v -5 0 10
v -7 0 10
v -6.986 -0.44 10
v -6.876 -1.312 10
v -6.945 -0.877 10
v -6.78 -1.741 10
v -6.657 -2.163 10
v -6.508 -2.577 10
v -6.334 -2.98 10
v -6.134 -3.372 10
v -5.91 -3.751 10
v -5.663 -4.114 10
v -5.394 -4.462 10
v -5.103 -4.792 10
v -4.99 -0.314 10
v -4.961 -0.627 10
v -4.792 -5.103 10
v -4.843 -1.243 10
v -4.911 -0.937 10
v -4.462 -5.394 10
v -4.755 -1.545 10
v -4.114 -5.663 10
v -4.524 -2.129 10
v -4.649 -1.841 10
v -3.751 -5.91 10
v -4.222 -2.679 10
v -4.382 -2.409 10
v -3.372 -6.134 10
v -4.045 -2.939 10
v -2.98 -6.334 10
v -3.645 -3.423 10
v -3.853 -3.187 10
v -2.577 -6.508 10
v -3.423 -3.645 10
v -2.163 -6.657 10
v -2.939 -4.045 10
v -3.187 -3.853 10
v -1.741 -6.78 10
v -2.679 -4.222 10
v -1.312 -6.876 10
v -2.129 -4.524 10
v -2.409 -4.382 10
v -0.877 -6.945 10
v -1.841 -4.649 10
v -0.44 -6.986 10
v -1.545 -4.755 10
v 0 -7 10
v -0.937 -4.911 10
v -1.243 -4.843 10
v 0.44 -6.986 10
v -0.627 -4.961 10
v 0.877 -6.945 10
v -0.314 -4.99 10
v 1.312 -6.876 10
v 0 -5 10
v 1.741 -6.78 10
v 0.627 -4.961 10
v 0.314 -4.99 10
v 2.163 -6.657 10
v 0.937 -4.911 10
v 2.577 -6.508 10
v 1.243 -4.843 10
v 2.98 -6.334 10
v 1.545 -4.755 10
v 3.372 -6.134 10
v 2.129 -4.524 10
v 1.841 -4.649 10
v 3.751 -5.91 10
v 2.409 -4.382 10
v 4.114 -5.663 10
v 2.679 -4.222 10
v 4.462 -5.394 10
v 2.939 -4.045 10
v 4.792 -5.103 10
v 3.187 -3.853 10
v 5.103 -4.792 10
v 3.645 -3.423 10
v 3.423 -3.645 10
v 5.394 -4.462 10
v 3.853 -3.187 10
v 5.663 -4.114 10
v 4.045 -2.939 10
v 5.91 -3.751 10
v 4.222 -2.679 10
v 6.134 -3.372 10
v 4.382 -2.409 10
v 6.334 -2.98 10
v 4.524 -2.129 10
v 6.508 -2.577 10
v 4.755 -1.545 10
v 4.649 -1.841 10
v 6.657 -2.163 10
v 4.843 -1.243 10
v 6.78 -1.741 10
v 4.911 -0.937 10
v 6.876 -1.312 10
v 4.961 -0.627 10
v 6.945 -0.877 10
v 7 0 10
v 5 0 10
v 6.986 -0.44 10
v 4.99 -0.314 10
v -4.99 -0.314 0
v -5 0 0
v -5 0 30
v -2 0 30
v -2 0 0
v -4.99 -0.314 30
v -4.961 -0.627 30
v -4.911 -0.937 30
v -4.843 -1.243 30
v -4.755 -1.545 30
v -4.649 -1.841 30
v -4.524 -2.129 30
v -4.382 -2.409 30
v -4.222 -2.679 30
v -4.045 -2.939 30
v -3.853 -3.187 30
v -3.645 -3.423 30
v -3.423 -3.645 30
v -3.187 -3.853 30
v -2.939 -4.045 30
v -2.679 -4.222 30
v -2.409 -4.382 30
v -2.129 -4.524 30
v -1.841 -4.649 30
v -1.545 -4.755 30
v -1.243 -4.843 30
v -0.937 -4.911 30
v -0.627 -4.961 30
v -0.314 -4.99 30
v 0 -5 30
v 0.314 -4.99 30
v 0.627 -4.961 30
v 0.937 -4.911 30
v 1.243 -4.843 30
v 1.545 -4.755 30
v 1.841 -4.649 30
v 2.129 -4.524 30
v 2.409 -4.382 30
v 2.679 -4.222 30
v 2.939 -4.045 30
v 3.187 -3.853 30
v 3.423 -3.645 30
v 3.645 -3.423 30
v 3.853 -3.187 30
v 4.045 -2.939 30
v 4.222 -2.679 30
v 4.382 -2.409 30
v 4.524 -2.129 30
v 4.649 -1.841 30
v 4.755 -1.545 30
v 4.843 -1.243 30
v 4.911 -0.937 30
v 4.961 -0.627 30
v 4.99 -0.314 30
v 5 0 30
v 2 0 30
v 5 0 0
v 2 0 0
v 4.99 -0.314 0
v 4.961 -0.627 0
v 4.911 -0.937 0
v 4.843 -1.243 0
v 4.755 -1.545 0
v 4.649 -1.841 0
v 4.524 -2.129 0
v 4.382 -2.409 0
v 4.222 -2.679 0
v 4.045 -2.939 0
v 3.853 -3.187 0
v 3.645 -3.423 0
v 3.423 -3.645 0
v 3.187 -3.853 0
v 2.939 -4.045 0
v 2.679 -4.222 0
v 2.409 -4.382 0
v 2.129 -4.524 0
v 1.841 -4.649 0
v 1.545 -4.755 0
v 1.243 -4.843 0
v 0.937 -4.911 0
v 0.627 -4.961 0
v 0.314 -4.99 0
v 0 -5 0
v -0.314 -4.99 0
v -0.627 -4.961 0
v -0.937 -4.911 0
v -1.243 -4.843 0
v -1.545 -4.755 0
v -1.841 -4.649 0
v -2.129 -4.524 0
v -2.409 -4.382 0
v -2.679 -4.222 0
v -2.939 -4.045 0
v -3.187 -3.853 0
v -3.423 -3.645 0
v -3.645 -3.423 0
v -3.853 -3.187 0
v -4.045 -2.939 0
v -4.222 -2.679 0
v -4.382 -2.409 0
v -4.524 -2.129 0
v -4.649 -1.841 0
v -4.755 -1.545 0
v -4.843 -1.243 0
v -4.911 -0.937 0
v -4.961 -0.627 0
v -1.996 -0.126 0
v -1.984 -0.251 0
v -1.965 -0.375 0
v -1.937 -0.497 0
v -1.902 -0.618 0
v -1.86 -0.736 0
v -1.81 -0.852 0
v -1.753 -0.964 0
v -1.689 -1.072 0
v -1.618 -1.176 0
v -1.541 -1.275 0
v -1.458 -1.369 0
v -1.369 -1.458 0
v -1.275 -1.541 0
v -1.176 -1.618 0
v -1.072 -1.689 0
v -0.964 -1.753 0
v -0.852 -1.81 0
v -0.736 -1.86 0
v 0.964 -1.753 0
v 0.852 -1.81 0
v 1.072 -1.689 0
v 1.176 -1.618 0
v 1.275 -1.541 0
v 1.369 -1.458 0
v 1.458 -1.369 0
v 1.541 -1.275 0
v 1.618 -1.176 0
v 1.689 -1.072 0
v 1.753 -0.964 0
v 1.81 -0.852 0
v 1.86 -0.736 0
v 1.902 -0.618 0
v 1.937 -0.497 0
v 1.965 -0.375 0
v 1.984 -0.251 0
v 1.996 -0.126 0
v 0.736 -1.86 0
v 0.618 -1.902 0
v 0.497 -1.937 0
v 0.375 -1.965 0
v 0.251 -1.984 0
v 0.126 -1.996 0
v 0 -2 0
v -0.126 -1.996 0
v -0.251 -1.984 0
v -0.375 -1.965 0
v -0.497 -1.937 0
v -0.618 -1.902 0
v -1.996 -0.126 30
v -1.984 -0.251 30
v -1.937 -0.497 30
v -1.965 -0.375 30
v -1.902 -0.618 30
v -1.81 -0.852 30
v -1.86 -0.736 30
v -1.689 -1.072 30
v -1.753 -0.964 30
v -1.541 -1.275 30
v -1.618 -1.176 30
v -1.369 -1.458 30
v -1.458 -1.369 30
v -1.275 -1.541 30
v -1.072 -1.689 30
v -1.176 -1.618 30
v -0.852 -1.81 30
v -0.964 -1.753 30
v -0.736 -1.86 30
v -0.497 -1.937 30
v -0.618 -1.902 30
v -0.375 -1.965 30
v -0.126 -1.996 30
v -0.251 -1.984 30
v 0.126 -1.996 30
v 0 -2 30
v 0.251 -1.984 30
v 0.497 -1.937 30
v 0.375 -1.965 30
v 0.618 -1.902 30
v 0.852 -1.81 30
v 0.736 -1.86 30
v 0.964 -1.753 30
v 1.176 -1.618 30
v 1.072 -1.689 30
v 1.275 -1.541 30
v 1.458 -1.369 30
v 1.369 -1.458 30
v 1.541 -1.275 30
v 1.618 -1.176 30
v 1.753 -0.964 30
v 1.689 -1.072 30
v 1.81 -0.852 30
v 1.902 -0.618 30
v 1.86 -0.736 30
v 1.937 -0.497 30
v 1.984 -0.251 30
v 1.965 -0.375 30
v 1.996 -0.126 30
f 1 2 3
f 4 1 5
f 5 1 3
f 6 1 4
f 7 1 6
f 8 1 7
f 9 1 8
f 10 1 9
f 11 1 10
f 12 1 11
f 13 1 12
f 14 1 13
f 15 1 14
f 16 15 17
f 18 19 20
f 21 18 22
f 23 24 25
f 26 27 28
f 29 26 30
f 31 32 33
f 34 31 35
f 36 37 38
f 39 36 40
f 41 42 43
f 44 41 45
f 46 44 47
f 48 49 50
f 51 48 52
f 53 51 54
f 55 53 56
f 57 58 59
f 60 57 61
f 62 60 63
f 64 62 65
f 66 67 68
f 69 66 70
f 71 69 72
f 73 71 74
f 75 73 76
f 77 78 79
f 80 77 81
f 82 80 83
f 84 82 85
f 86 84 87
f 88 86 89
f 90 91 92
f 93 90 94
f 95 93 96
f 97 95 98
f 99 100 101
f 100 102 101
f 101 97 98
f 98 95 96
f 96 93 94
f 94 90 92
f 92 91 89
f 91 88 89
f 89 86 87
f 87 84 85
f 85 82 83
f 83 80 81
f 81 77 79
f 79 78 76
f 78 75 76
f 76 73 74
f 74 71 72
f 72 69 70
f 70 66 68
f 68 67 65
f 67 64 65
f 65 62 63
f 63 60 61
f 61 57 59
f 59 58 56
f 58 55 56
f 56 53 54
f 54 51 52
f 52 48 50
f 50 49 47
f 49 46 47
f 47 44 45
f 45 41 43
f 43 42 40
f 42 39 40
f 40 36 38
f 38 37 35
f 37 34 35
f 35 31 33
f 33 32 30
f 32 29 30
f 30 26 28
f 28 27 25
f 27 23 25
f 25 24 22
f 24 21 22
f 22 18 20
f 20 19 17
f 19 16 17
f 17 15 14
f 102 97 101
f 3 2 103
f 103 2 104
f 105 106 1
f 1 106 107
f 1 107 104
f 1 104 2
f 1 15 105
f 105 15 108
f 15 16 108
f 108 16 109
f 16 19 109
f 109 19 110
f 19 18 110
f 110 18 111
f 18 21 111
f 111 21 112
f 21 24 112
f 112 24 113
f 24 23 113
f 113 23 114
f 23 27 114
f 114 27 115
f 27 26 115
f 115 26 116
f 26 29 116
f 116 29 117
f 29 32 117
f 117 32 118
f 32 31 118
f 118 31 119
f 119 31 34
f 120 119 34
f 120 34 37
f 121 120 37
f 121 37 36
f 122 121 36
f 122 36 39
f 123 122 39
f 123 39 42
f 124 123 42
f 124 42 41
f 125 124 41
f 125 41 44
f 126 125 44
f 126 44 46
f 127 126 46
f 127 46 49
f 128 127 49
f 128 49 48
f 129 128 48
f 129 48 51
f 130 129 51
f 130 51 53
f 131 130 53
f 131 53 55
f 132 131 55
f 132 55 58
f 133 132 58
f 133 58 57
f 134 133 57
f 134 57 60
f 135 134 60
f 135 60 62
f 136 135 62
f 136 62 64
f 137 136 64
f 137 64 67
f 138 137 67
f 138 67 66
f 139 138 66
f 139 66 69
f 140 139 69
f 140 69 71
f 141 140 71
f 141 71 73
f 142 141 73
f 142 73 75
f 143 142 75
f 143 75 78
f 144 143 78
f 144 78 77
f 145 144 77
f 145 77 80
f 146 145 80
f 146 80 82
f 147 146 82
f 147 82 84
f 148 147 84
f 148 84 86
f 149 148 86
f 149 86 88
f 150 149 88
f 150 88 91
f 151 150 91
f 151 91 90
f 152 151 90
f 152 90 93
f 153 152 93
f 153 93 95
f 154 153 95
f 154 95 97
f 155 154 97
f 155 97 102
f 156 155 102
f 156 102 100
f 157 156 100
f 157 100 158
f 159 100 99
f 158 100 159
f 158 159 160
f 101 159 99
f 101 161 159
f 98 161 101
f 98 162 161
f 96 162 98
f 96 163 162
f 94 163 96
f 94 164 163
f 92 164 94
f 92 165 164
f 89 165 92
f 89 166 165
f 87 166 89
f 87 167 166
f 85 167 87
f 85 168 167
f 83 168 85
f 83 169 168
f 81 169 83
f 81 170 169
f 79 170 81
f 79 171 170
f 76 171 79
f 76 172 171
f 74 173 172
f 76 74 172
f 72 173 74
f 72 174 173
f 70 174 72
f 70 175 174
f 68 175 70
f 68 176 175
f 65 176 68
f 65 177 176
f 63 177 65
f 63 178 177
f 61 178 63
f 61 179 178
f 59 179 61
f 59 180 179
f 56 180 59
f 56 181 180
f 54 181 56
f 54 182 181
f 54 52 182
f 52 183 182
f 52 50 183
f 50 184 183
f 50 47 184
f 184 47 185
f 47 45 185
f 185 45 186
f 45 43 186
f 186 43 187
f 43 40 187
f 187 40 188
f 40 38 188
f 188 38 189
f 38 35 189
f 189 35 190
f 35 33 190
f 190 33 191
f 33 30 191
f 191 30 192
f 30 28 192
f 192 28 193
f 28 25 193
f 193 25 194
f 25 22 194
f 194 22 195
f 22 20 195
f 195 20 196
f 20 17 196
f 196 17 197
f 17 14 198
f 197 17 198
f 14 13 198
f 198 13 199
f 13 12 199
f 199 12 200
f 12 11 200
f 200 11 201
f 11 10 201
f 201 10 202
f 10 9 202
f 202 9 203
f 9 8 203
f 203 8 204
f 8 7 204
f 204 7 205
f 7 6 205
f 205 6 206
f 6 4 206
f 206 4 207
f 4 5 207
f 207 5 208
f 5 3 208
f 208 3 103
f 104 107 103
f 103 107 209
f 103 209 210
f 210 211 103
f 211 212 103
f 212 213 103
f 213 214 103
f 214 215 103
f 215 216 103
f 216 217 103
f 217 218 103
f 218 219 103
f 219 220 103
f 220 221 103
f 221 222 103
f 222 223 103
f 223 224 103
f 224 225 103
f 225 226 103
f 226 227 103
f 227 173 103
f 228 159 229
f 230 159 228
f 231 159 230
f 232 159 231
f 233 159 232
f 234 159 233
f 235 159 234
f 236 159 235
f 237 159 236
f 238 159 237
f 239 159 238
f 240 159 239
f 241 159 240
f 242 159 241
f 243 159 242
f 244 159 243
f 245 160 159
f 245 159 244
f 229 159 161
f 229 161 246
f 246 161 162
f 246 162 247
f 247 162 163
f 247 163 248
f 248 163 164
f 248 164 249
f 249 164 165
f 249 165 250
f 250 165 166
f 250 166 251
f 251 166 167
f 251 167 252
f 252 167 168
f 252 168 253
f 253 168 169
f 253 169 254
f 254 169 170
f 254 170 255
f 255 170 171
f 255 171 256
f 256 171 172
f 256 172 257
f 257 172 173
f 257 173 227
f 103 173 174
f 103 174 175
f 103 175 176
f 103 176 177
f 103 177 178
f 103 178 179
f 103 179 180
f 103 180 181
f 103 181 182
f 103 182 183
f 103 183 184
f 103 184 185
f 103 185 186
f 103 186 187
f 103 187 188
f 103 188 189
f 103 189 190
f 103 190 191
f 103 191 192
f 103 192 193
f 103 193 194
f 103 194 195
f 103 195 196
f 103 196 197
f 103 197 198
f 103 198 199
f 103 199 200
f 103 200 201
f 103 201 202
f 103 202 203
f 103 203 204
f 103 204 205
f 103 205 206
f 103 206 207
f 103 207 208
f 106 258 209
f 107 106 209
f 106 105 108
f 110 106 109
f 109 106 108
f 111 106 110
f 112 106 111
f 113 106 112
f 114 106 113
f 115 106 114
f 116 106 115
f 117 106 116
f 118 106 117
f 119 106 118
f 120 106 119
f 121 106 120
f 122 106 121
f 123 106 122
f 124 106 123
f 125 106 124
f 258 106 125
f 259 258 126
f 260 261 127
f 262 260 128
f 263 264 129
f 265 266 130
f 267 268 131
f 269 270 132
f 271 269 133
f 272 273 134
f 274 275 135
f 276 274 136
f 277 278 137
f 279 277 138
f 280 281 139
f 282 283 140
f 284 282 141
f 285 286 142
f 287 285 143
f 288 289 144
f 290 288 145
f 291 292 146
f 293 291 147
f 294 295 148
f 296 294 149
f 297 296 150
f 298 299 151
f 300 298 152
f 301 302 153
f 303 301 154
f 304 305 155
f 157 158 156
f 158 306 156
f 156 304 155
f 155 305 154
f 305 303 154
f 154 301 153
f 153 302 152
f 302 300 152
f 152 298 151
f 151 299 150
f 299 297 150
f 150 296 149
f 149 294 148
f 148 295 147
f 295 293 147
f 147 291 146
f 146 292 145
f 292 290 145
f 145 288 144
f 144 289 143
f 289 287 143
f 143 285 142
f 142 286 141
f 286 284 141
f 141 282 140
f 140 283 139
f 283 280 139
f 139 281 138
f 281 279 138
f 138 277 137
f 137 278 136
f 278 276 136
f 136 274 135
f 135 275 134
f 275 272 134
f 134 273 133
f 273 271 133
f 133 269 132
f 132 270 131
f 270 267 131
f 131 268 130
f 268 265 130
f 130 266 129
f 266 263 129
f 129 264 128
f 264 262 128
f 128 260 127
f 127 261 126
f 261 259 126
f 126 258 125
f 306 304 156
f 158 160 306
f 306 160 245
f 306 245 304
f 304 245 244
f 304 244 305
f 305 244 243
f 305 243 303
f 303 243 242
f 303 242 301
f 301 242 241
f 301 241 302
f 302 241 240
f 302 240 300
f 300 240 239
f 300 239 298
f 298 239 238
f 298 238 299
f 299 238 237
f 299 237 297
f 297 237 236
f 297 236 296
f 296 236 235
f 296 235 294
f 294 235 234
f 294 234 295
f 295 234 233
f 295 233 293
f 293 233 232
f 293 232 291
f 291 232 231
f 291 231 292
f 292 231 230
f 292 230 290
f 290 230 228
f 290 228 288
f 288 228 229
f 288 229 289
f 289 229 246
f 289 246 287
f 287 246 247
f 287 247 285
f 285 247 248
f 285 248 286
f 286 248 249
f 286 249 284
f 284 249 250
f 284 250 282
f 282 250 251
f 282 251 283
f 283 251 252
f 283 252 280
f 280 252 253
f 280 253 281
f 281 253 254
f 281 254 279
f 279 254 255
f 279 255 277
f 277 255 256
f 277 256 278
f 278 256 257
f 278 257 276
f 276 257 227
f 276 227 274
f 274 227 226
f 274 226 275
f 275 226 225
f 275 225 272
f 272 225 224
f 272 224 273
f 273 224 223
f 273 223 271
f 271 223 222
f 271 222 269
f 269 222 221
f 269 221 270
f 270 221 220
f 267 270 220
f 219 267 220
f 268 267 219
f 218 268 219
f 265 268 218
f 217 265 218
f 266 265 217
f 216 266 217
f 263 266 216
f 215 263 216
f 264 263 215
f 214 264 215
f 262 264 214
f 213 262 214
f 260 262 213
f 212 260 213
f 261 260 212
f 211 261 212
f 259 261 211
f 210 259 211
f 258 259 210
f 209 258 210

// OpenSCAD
// ---------- Kabeldurchführung -----------
difference() {
  union() {
    cylinder(h=30, r=5, $fn=100);
    cylinder(h=10, r1=5, r2=7, $fn=100);
  }
  translate([0,0,-1]) cylinder(r=2, h=50, $fn=100);
  translate([-10,0,-1]) cube([20,10,50]);
}
